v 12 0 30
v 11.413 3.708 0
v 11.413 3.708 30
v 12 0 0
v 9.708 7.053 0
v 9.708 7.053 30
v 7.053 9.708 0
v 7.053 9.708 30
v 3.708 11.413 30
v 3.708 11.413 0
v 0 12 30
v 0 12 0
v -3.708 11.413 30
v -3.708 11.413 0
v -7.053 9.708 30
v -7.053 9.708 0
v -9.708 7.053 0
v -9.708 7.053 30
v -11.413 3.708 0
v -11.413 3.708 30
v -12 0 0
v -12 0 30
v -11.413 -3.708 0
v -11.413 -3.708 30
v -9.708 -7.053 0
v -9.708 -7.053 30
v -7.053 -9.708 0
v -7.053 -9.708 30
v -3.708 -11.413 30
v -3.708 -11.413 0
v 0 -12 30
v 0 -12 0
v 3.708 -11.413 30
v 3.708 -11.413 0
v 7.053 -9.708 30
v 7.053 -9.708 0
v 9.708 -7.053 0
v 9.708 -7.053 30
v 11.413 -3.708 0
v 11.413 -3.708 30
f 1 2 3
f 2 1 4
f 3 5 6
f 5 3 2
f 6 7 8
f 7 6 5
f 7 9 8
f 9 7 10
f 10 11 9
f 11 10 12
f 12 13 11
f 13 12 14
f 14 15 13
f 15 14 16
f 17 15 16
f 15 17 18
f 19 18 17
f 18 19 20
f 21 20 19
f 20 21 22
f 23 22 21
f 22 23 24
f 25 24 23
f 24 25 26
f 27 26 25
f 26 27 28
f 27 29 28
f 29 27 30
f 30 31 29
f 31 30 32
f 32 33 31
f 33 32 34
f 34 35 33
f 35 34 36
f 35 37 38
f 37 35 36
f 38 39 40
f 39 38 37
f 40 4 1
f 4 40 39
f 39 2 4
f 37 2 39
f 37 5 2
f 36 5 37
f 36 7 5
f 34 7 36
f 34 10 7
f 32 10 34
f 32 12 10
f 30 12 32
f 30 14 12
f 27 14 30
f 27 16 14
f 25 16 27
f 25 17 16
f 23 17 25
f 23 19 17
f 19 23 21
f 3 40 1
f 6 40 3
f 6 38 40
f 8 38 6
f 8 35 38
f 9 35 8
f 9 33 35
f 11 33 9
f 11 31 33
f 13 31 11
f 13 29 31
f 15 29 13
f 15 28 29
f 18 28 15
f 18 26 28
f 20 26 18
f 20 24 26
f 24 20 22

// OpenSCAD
// A zero component means "leave alone"; auto=true scales it with the others.
$fn = 20;
resize([24, 0, 0], auto = true) cylinder(h = 10, r = 4);
